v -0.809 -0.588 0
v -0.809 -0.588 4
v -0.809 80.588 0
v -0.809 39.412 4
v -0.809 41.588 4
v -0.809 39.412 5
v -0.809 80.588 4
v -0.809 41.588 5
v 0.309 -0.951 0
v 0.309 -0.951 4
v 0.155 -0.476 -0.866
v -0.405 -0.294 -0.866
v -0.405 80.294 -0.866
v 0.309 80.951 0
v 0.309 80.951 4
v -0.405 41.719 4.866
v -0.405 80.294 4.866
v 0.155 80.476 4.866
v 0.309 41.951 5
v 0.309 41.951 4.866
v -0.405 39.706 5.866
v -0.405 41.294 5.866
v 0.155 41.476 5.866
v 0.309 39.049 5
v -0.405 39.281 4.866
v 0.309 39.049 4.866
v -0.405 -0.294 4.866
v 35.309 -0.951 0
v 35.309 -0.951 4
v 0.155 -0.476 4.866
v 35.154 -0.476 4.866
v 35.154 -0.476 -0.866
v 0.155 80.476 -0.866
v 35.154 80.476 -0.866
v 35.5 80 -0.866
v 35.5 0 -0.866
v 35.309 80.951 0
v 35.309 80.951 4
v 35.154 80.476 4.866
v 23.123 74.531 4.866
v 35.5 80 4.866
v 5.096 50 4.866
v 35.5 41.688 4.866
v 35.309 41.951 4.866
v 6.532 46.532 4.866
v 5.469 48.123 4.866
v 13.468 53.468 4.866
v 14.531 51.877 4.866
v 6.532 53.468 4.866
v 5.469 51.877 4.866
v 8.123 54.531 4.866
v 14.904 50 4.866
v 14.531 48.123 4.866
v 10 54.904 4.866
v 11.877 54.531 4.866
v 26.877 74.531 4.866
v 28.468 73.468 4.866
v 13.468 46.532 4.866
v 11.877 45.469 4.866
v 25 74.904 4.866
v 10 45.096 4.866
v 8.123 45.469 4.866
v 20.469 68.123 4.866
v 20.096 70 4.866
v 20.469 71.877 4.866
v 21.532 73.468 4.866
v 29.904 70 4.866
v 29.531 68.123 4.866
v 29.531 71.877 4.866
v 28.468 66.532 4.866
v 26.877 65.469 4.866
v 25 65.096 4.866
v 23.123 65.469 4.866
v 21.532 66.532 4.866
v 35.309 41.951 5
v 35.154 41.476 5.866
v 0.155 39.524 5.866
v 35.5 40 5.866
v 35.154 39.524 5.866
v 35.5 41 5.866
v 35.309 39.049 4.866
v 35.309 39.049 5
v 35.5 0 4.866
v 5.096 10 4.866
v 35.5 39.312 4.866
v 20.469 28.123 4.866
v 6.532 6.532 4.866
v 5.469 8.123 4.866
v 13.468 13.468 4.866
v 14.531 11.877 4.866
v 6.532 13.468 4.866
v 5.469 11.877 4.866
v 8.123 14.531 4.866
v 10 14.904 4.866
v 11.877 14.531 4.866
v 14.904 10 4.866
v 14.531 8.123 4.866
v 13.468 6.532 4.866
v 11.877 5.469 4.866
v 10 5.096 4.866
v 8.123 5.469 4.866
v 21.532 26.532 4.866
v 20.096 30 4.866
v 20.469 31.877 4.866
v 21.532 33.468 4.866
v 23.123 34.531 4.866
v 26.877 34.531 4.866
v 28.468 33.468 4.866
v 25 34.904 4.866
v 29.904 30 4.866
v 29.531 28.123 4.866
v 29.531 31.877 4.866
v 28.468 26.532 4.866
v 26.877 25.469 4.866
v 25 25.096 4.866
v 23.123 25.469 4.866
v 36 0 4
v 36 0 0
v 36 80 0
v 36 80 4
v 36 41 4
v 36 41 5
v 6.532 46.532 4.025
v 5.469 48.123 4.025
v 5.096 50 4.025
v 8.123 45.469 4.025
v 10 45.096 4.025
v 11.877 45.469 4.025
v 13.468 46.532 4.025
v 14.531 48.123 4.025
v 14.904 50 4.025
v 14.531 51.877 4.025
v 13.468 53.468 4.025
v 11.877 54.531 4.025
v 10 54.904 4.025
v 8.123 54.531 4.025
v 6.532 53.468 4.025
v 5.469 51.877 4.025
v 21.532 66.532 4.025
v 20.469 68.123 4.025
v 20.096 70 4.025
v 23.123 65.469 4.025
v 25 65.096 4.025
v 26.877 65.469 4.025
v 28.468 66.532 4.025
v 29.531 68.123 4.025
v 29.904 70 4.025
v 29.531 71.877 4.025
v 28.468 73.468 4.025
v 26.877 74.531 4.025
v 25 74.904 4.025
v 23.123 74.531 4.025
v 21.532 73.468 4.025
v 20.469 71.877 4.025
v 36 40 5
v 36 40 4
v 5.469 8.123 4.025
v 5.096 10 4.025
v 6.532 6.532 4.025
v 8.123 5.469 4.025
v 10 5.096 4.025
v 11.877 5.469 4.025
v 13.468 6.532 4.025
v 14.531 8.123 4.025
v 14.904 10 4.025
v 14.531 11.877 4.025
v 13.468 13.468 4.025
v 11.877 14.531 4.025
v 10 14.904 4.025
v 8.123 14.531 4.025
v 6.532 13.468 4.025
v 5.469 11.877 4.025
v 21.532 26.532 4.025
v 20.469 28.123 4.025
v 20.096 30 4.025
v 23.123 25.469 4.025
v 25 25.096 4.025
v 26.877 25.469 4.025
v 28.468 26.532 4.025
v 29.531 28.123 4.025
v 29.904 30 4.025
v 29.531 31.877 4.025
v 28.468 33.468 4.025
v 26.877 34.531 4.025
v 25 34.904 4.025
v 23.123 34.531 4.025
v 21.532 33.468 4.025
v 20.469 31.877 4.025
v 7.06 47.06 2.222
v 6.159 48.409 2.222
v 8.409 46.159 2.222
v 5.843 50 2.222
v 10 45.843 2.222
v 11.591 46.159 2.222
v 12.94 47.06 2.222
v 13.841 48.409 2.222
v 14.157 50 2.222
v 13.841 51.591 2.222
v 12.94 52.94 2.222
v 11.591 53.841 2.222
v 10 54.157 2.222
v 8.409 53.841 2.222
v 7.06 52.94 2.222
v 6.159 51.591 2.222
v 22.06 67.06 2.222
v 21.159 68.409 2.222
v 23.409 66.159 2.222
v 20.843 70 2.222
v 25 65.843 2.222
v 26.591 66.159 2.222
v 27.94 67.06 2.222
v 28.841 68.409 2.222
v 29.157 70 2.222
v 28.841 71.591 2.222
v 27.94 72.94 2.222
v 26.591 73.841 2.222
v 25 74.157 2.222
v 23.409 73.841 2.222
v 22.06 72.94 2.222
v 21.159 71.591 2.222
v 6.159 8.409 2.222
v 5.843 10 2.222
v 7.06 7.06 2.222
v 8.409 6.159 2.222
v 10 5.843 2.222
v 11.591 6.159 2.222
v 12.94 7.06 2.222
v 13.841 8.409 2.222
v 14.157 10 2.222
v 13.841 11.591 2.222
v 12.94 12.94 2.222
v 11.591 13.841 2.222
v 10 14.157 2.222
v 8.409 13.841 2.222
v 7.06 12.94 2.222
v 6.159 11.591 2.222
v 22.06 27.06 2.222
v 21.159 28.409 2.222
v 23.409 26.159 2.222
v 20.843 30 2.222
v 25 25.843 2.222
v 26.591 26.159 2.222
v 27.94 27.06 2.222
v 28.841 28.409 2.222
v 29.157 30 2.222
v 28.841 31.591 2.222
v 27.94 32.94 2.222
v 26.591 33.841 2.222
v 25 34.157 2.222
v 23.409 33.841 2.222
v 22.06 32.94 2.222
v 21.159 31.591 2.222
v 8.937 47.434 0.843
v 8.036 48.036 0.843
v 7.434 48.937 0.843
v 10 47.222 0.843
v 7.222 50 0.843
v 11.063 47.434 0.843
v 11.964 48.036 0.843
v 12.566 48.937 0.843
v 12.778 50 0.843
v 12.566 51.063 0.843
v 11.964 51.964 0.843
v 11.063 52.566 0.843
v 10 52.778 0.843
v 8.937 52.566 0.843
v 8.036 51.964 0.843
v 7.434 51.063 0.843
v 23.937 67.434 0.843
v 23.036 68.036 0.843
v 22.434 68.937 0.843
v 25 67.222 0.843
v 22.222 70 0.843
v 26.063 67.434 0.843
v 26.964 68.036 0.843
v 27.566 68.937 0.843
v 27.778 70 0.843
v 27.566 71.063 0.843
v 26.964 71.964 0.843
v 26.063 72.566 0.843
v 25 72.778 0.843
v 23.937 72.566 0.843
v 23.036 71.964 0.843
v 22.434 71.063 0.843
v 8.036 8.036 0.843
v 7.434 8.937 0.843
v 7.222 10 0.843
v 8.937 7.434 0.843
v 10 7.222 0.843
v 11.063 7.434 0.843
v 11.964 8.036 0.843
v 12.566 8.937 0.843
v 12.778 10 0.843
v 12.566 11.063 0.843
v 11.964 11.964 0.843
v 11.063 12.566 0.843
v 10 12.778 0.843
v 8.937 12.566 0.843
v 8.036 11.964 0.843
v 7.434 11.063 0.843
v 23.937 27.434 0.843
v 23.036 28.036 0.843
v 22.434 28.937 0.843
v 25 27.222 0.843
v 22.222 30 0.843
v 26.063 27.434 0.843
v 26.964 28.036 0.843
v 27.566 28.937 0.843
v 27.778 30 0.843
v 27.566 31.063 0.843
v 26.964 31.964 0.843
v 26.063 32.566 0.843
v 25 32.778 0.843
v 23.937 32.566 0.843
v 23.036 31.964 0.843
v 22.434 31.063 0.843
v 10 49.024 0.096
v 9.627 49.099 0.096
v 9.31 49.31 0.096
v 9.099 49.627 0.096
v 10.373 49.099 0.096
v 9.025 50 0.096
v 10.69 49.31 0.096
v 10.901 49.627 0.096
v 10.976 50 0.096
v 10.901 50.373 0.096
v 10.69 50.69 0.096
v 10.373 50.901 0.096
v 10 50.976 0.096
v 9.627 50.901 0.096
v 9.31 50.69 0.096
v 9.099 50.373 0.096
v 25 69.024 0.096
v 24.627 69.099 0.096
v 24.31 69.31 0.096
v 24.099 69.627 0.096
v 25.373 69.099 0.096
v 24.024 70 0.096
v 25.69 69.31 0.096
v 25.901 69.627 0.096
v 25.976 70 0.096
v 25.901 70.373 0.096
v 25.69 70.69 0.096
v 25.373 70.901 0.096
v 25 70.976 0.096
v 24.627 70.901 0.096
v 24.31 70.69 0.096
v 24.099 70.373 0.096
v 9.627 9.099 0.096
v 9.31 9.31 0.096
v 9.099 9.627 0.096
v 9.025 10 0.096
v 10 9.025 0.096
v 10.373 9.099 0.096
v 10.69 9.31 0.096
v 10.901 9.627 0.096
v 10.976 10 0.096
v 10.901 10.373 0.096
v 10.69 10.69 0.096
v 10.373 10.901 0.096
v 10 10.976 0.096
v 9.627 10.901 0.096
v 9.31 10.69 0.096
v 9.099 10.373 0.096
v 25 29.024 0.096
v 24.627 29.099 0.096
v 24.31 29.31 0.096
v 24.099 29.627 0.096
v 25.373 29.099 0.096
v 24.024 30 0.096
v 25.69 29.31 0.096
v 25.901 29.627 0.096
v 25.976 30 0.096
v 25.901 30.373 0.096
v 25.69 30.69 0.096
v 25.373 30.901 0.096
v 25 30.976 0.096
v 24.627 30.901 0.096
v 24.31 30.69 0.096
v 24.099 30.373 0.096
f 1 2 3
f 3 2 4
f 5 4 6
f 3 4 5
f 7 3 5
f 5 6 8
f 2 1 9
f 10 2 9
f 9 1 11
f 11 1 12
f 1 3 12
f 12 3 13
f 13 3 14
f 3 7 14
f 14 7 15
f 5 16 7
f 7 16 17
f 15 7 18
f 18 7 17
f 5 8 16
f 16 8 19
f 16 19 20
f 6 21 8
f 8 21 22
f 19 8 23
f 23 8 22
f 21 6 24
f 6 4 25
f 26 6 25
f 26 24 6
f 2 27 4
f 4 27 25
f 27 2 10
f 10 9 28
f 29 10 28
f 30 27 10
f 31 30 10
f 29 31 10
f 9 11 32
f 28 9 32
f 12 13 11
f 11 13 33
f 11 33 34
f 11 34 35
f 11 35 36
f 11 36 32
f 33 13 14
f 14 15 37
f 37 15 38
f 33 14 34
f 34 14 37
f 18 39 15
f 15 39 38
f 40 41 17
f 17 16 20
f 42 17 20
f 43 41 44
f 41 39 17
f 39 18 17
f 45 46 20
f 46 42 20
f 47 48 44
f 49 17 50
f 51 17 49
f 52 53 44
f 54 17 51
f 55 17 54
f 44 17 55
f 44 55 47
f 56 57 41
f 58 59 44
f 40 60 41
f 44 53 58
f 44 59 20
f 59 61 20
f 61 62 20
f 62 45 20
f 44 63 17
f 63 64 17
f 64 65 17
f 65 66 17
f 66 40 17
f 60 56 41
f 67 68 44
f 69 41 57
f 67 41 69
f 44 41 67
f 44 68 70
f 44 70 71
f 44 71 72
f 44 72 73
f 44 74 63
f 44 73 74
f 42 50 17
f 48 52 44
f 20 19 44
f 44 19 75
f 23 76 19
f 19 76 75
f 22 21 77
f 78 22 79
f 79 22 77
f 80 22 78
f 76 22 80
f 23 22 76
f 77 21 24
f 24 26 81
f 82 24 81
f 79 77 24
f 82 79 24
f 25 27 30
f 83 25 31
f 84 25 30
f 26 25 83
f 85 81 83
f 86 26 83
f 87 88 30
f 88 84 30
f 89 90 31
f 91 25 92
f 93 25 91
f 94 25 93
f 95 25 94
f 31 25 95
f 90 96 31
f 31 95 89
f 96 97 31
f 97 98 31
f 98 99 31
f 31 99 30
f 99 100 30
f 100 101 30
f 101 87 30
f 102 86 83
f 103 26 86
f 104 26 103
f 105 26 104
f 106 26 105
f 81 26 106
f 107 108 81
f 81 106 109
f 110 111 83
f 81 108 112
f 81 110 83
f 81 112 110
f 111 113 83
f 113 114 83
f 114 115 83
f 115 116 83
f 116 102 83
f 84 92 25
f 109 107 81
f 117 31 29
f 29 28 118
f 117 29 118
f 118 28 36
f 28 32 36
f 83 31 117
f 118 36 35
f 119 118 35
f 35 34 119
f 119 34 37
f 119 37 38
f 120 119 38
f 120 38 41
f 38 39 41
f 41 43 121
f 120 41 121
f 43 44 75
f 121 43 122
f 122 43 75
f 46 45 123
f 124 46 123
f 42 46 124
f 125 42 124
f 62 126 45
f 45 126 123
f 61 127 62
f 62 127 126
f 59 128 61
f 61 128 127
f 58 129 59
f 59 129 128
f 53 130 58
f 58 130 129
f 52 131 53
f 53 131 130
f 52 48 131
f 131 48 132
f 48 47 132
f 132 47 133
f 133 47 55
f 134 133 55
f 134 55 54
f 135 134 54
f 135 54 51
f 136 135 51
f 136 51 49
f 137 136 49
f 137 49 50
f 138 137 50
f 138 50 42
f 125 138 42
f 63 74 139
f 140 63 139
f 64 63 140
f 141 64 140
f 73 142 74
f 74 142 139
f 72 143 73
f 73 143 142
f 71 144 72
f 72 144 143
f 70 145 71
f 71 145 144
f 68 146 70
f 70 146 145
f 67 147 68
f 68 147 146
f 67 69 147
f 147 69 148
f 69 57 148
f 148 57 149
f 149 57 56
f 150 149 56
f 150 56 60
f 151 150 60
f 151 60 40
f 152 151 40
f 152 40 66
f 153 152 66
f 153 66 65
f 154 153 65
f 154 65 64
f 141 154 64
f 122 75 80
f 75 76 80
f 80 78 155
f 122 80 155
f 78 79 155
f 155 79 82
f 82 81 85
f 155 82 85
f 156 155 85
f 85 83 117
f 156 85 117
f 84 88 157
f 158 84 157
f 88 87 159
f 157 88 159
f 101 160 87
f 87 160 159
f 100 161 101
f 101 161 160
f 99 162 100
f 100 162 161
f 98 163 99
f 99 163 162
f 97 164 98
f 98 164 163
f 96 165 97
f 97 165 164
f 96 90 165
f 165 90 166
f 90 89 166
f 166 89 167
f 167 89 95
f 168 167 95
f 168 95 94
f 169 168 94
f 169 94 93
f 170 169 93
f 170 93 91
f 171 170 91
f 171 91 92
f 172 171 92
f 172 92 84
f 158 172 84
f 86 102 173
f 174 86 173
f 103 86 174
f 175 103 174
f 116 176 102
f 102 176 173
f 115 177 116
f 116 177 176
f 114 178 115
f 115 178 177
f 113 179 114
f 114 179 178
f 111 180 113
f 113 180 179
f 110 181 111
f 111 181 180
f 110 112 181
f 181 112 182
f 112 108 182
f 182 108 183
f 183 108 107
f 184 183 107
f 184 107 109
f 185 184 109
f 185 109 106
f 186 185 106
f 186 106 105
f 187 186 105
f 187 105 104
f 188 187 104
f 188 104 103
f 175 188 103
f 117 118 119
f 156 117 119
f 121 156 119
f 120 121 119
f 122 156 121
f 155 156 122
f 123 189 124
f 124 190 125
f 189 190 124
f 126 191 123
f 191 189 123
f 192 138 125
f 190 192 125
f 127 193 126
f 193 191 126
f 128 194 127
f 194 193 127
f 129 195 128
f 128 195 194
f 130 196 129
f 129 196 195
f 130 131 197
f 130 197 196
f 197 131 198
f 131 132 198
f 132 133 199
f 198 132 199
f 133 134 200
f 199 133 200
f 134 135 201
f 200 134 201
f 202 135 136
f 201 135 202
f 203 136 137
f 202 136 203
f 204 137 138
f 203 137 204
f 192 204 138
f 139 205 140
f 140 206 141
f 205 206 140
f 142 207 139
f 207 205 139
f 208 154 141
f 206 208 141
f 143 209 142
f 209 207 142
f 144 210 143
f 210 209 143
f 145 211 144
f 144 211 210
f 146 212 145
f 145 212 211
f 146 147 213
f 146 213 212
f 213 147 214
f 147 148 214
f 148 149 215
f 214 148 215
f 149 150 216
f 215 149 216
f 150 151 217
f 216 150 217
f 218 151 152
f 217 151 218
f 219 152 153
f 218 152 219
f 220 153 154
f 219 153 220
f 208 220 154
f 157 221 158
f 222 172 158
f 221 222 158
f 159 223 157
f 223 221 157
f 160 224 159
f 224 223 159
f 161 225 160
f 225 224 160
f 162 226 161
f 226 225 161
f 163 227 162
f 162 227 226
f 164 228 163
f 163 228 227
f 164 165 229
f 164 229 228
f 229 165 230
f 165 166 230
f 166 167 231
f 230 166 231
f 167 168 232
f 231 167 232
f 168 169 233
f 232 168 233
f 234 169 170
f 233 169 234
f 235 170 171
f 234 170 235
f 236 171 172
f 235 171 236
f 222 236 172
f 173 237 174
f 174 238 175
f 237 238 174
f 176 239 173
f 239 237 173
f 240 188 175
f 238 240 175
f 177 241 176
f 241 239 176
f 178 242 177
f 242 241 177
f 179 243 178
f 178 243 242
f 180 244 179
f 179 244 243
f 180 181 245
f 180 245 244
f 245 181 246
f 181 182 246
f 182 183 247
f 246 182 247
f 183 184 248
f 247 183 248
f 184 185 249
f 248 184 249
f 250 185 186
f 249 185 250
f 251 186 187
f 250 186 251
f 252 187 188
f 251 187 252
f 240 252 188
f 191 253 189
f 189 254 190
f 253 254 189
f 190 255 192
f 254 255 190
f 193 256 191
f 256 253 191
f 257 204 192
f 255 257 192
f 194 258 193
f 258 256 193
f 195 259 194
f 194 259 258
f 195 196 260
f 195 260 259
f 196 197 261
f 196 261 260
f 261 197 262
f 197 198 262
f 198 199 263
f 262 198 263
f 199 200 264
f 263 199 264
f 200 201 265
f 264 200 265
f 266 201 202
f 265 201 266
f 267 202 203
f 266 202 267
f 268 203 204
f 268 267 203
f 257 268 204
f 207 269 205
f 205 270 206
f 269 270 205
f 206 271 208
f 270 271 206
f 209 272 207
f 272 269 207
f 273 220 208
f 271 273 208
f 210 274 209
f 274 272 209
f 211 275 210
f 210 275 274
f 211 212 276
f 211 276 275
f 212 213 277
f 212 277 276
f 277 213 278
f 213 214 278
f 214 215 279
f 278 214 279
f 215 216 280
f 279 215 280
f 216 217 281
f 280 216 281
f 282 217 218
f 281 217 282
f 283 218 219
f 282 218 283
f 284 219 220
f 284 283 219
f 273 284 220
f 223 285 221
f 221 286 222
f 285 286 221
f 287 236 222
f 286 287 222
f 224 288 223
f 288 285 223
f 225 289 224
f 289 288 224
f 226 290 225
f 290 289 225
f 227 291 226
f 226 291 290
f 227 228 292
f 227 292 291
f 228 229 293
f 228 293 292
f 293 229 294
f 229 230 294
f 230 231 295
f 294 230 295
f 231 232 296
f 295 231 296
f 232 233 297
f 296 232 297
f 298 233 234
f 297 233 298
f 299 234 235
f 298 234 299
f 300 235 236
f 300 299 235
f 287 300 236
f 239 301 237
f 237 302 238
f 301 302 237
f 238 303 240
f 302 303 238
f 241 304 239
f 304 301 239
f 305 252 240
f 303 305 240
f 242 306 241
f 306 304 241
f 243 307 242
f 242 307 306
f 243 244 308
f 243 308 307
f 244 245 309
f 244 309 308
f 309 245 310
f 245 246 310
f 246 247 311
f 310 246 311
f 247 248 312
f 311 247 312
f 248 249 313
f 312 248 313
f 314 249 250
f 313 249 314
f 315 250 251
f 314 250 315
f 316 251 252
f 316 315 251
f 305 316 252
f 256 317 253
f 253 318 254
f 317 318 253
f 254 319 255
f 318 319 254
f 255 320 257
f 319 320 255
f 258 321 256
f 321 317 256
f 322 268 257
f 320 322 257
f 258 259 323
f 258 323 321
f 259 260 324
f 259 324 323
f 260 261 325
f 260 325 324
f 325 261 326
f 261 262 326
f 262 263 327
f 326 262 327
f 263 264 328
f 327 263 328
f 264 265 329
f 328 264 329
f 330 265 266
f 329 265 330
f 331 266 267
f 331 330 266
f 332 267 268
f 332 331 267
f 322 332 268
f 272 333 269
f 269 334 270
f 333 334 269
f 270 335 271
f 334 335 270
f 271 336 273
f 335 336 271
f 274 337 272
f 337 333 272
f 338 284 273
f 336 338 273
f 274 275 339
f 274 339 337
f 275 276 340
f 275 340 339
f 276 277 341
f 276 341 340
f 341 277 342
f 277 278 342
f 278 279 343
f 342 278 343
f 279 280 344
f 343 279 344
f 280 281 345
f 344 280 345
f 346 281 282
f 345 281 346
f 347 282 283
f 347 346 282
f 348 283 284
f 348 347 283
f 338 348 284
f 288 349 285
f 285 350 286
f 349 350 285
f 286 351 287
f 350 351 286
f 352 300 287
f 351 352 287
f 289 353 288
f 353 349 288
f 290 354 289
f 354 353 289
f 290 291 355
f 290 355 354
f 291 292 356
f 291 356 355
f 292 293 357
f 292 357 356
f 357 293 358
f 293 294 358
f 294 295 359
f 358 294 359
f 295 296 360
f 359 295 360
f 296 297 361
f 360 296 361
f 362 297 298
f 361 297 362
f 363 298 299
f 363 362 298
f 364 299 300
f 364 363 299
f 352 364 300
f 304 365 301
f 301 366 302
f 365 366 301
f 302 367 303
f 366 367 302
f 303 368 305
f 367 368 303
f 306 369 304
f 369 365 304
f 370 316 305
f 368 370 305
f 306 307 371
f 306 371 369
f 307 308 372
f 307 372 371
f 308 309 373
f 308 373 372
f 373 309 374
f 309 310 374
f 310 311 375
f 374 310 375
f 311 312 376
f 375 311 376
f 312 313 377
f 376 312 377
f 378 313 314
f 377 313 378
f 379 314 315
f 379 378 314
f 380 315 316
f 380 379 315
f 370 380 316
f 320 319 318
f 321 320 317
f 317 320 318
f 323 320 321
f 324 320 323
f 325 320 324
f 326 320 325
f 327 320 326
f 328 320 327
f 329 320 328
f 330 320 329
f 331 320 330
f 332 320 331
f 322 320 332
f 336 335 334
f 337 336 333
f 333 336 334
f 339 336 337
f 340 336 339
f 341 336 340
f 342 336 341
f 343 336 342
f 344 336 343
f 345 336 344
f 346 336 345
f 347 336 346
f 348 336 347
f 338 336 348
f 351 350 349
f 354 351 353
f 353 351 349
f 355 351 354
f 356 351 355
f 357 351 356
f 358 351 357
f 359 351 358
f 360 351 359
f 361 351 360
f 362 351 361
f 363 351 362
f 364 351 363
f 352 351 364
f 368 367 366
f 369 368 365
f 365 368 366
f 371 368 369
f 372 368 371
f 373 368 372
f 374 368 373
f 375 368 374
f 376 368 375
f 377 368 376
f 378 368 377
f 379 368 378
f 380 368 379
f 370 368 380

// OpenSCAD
// Loguncov Maxim 13.12.13


//$fn=128;


translate([0,40,0])
minkowski()
{cube([35,1,5]);
sphere(1);
}

difference() {

//основа
minkowski()
{cube([35,80,4]);
sphere(1);
}

//отверстия
translate([10,10,5])sphere(5);
translate([25,30,5])sphere(5);

translate([10,50,5])sphere(5);
translate([25,70,5])sphere(5);


}
